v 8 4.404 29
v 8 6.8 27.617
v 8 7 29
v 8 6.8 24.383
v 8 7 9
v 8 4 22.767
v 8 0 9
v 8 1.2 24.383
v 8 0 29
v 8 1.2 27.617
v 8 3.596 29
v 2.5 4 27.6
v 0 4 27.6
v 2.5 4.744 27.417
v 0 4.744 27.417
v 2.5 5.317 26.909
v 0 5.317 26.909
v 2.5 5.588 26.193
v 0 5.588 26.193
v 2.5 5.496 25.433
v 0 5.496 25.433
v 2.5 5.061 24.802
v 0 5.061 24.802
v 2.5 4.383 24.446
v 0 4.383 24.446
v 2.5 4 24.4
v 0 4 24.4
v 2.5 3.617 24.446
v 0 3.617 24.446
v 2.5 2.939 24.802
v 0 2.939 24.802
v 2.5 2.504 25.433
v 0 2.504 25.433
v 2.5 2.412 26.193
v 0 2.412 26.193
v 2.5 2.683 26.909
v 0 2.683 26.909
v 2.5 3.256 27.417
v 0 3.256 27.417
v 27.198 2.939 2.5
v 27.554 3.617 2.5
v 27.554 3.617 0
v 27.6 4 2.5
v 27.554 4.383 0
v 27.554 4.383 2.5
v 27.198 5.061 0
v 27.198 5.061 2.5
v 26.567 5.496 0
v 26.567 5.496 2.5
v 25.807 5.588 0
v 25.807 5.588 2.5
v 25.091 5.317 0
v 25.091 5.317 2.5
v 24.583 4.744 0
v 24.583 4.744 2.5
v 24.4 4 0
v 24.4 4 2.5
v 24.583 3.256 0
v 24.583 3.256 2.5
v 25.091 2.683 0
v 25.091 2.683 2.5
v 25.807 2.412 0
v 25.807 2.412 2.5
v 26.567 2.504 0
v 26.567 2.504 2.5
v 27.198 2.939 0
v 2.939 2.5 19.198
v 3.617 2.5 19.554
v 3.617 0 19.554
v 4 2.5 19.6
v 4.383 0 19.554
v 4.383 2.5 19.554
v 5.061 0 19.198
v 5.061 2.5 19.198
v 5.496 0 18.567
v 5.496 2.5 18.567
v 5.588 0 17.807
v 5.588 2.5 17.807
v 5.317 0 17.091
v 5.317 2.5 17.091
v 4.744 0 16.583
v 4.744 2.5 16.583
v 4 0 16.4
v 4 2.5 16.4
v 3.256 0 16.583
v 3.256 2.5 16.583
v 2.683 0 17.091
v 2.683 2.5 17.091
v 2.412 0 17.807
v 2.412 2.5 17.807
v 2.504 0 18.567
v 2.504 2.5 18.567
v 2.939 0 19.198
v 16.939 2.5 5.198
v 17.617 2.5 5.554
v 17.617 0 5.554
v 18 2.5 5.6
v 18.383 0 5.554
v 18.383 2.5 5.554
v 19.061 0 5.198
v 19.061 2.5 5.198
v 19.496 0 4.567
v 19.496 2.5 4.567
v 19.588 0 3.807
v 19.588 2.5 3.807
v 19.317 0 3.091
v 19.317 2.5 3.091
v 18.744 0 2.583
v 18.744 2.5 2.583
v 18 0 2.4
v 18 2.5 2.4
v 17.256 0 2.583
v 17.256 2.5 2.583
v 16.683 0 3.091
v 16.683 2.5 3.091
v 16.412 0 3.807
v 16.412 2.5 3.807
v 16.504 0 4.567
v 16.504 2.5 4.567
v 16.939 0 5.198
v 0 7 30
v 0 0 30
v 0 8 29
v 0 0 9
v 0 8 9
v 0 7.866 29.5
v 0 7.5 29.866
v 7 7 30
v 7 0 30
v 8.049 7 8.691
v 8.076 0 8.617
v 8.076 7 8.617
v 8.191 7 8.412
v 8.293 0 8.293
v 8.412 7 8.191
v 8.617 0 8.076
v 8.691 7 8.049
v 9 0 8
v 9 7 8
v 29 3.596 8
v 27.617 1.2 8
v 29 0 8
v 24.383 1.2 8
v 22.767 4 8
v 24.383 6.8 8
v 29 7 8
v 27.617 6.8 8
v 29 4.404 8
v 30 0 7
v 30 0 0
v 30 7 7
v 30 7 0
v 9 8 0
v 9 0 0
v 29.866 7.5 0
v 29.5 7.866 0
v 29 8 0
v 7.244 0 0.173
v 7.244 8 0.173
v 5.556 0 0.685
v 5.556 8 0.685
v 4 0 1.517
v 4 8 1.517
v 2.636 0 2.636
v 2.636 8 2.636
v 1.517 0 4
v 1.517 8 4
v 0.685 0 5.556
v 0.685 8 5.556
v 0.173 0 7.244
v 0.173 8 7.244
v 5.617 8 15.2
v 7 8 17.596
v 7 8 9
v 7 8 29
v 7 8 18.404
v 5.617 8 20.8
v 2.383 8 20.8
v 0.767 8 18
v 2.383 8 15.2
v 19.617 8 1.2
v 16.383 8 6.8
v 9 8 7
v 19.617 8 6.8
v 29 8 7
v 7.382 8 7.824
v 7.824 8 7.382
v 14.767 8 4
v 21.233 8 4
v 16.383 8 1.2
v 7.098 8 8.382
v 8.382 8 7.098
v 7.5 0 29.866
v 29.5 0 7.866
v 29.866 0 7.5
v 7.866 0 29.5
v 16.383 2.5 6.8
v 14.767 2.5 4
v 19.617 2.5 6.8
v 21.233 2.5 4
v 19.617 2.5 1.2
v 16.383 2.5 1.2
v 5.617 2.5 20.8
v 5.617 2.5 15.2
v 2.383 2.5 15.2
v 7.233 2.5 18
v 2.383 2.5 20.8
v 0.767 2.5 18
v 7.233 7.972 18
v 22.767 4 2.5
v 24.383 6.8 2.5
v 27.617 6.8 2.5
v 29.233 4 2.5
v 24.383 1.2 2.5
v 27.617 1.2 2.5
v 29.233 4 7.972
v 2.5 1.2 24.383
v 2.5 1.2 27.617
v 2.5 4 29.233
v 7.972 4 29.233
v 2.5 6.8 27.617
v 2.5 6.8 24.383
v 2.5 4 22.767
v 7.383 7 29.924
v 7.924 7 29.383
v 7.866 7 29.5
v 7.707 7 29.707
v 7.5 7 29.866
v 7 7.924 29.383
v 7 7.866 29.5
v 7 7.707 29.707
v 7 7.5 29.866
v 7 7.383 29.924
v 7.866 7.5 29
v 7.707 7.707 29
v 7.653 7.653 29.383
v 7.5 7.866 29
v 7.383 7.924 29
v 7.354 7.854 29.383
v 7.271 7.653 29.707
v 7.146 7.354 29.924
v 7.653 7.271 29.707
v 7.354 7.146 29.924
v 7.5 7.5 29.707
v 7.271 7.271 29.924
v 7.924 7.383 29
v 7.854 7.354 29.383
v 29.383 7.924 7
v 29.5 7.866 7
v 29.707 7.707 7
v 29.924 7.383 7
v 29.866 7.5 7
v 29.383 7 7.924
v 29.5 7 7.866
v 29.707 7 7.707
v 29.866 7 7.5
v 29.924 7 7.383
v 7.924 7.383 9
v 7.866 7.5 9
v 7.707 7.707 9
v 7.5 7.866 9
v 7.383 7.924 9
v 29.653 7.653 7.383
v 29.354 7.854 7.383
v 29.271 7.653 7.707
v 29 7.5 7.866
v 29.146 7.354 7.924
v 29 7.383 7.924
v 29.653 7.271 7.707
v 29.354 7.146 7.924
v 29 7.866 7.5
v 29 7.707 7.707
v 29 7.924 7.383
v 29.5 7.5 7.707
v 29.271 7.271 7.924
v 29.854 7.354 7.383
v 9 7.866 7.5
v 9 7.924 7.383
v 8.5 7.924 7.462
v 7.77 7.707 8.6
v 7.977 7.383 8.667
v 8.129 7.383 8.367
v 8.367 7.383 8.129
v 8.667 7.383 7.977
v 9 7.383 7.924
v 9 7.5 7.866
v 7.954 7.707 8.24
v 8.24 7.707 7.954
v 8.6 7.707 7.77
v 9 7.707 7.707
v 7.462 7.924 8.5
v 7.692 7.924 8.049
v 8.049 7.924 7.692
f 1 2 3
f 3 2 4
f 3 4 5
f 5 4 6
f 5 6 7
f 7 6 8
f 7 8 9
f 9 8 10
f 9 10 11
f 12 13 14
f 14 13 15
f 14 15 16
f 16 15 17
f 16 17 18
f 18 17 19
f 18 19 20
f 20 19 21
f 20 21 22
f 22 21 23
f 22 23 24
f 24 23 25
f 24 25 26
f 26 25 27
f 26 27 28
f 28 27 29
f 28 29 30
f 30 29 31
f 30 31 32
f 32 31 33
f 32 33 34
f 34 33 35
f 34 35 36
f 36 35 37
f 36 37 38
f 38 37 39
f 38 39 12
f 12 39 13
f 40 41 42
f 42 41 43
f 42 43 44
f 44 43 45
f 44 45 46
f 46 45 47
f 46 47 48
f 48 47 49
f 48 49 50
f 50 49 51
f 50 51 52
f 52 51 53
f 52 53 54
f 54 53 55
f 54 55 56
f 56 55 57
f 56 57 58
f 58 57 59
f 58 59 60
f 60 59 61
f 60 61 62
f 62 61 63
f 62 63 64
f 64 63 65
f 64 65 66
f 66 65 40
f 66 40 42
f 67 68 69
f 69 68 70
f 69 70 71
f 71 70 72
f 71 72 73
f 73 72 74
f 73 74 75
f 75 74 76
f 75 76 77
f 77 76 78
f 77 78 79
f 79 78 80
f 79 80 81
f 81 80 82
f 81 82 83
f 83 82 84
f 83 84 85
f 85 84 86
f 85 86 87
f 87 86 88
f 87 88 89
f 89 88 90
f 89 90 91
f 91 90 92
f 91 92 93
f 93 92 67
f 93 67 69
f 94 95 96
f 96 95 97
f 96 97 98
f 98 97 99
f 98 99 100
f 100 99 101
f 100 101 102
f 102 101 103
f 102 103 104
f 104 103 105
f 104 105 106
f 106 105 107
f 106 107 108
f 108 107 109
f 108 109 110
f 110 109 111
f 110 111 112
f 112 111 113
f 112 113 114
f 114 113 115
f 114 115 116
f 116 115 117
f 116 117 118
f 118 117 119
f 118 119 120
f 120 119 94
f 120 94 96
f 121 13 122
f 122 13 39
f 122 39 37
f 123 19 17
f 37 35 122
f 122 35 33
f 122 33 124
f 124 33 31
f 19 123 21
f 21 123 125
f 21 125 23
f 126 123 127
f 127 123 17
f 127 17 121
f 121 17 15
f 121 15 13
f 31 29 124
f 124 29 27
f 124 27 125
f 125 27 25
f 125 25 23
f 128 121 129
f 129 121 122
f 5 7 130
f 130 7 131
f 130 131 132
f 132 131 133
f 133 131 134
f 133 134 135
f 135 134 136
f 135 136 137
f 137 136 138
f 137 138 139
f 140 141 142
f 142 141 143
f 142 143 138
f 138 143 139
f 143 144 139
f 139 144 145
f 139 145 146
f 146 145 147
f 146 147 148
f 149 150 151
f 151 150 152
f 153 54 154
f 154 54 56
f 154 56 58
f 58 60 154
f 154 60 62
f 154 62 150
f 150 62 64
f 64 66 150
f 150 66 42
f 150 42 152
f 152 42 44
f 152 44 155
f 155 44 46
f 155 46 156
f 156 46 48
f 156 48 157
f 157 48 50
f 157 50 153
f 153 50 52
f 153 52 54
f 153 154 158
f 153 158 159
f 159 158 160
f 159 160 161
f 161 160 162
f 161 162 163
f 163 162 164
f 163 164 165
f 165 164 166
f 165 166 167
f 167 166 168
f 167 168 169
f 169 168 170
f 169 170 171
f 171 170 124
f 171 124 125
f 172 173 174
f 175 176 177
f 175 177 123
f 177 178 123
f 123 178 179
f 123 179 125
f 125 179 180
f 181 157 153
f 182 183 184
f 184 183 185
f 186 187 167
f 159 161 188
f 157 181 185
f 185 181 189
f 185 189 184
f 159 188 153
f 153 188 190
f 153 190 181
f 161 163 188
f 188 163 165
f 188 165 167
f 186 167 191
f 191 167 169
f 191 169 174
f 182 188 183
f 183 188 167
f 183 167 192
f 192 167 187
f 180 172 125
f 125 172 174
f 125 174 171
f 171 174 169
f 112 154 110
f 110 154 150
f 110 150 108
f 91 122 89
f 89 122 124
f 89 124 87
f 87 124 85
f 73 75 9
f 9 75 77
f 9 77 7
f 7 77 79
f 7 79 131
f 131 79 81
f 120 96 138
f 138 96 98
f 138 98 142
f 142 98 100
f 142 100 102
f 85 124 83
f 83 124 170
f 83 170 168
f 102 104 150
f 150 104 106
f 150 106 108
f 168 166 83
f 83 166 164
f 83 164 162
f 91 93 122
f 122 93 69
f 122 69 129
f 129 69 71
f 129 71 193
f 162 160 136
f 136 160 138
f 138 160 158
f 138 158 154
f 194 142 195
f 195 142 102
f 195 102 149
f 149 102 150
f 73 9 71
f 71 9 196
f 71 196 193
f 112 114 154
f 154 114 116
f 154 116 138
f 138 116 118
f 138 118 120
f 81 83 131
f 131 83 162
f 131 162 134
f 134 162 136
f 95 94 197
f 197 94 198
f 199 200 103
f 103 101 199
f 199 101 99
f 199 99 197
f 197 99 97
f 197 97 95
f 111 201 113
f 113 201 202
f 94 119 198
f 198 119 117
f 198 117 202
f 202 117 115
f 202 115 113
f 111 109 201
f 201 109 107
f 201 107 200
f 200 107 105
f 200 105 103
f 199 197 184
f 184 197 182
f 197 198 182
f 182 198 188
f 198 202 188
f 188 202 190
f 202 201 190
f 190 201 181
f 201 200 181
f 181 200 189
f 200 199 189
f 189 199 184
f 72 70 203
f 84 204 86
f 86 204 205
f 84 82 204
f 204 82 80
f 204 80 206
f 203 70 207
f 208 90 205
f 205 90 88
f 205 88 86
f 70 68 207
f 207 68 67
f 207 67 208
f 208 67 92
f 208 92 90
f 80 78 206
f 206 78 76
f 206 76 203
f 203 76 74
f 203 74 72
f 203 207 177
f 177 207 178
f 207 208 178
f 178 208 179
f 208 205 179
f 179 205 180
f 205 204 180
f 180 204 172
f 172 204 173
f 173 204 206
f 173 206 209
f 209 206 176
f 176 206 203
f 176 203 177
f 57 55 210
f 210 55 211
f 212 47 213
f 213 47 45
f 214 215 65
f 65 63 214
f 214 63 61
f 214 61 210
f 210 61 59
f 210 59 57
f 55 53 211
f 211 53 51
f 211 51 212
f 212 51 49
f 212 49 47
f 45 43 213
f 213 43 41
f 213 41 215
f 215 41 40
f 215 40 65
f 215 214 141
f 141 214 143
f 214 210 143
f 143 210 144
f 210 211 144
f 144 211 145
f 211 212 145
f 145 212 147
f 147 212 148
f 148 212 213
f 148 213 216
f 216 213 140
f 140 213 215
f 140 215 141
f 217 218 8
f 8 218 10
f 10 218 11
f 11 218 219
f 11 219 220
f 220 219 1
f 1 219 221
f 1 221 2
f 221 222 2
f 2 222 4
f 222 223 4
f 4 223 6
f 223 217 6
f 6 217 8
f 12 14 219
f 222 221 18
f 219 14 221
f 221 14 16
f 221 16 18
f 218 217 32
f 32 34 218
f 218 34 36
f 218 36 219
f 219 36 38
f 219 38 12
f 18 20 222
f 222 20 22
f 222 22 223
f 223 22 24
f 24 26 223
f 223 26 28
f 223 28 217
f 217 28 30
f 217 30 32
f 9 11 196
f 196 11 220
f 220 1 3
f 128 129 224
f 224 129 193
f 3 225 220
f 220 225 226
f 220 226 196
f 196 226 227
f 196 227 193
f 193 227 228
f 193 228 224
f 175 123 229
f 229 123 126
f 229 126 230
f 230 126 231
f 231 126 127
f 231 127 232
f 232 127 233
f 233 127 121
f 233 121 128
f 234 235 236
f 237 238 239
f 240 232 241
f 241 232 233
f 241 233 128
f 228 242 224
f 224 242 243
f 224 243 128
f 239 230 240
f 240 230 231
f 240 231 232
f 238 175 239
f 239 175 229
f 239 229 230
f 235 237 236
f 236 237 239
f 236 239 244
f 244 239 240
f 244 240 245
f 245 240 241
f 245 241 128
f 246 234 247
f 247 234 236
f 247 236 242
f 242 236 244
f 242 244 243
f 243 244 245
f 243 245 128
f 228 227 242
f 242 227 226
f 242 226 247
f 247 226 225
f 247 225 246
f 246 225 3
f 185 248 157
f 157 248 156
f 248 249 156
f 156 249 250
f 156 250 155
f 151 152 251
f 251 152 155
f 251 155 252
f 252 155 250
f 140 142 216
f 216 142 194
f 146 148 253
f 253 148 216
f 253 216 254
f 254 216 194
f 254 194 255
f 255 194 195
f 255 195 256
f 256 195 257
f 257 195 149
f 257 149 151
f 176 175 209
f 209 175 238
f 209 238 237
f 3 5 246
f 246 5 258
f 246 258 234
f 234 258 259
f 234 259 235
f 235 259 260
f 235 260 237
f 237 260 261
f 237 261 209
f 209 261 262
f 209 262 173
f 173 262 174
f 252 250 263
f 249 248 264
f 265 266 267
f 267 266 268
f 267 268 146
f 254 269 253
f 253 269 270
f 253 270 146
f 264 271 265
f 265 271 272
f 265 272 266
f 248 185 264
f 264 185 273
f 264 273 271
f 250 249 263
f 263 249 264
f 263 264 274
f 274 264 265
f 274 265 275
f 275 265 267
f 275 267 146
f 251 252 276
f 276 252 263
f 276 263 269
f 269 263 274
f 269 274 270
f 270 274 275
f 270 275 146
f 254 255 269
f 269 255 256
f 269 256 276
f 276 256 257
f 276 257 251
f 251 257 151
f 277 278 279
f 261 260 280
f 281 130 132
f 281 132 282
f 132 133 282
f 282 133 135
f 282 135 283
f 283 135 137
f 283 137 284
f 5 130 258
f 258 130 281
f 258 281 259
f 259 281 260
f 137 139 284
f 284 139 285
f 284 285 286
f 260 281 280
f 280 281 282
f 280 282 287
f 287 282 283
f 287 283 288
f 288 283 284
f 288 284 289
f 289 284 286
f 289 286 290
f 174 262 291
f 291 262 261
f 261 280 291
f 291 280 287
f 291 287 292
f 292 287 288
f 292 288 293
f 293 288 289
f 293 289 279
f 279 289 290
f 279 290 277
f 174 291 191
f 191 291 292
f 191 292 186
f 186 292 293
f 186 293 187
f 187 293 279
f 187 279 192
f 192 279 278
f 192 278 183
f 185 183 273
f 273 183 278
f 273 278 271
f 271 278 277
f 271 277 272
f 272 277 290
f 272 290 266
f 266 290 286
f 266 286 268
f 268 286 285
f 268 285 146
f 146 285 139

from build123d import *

# Parameters (mm, degrees)
EXTRU_MINCE1_DEPTH      = 8
ENL_V_MAT_EXTRU_1_REACH = 45.174
ESQUISSE2_R             = 1.6
ENL_V_MAT_EXTRU_2_DEPTH = 5.5
ENL_V_MAT_EXTRU_3_REACH = 45.174
ESQUISSE4_R             = 1.6
ENL_V_MAT_EXTRU_4_DEPTH = 5.5
CONG_1_R                = 1


with BuildPart() as part:
    # Esquisse1 → Extru.-Mince1 (new body)
    with BuildSketch(Plane(origin=(0, 0, 0), x_dir=(1, 0, 0), z_dir=(0, 1, 0))):
        with BuildLine():
            Line((30, 0), (9, 0))
            ThreePointArc((9, 0), (2.636038969, -2.636038969), (0, -9))
            Line((0, -9), (0, -30))
            Line((0, -30), (8, -30))
            Line((8, -30), (8, -9))
            ThreePointArc((8, -9), (8.292893219, -8.292893219), (9, -8))
            Line((9, -8), (30, -8))
            Line((30, -8), (30, 0))
        make_face()
    extrude(amount=EXTRU_MINCE1_DEPTH)

    # Esquisse2 → Enlèv. mat.-Extru.1 (cut, up to next)
    with BuildSketch(Plane.XZ, mode=Mode.PRIVATE) as enl_v_mat_extru_1_sk1:
        with Locations(Location((18, 4, 0), (0, 0, 270))):
            Circle(ESQUISSE2_R)
    enl_v_mat_extru_1_tool1 = extrude(enl_v_mat_extru_1_sk1.sketch, amount=-ENL_V_MAT_EXTRU_1_REACH, mode=Mode.PRIVATE) & part.part
    # Esquisse2 → Enlèv. mat.-Extru.1 (cut, up to next)
    with BuildSketch(Plane.XZ, mode=Mode.PRIVATE) as enl_v_mat_extru_1_sk2:
        with Locations(Location((4, 18, 0), (0, 0, 270))):
            Circle(ESQUISSE2_R)
    enl_v_mat_extru_1_tool2 = extrude(enl_v_mat_extru_1_sk2.sketch, amount=-ENL_V_MAT_EXTRU_1_REACH, mode=Mode.PRIVATE) & part.part
    add(enl_v_mat_extru_1_tool1.solids().sort_by_distance((18, 0, 4))[0], mode=Mode.SUBTRACT)
    add(enl_v_mat_extru_1_tool2.solids().sort_by_distance((4, 0, 18))[0], mode=Mode.SUBTRACT)

    # Esquisse3 → Enlèv. mat.-Extru.2 (cut)
    with BuildSketch(Plane(origin=(0, 8, 0), x_dir=(1, 0, 0), z_dir=(0, 1, 0))):
        Polygon((5.616580754, -20.8), (7.233161507, -18), (5.616580754, -15.2), (2.383419246, -15.2), (0.766838493, -18), (2.383419246, -20.8), align=None)
        Polygon((19.616580754, -6.8), (21.233161507, -4), (19.616580754, -1.2), (16.383419246, -1.2), (14.766838493, -4), (16.383419246, -6.8), align=None)
    extrude(amount=-ENL_V_MAT_EXTRU_2_DEPTH, mode=Mode.SUBTRACT)

    # Esquisse4 → Enlèv. mat.-Extru.3 (cut, up to next)
    with BuildSketch(Plane(origin=(0, 0, 0), x_dir=(-1, 0, 0), z_dir=(0, 0, -1)), mode=Mode.PRIVATE) as enl_v_mat_extru_3_sk1:
        with Locations((-26, 4)):
            Circle(ESQUISSE4_R)
    enl_v_mat_extru_3_tool1 = extrude(enl_v_mat_extru_3_sk1.sketch, amount=-ENL_V_MAT_EXTRU_3_REACH, mode=Mode.PRIVATE) & part.part
    enl_v_mat_extru_3 = enl_v_mat_extru_3_tool1.solids().sort_by_distance((26, 4, 0))[0]
    add(enl_v_mat_extru_3, mode=Mode.SUBTRACT)

    # Esquisse5 → Enlèv. mat.-Extru.4 (cut)
    with BuildSketch(Plane.XY.offset(8)):
        Polygon((27.616580754, 1.2), (29.233161507, 4), (27.616580754, 6.8), (24.383419246, 6.8), (22.766838493, 4), (24.383419246, 1.2), align=None)
    enl_v_mat_extru_4 = extrude(amount=-ENL_V_MAT_EXTRU_4_DEPTH, mode=Mode.SUBTRACT)

    # Symétrie1: Enlèv. mat.-Extru.3, Enlèv. mat.-Extru.4 across plane
    add(enl_v_mat_extru_3.mirror(Plane(origin=(0, 0, 0), x_dir=(0.7071067811865476, 0, 0.7071067811865475), z_dir=(0.7071067811865475, 0, -0.7071067811865476))), mode=Mode.SUBTRACT)
    add(enl_v_mat_extru_4.mirror(Plane(origin=(0, 0, 0), x_dir=(0.7071067811865476, 0, 0.7071067811865475), z_dir=(0.7071067811865475, 0, -0.7071067811865476))), mode=Mode.SUBTRACT)

    # Congé1
    # the kernel refuses this fillet: 1 mm, written as the material it takes off along each edge
    with BuildSketch(Plane(origin=(7, 7, 29), x_dir=(0, 1, 0), z_dir=(1, 0, 0))) as cong_1_piece_1_section:
        Polygon((0, 0), (CONG_1_R, 0), (CONG_1_R, CONG_1_R), (0, CONG_1_R), align=None)
    cong_1_piece_1 = extrude(amount=CONG_1_R, mode=Mode.PRIVATE)
    cong_1_piece_1 = cong_1_piece_1 - Plane(origin=(7, 7, 29), x_dir=(0, -0.7071067811865475, -0.7071067811865475), z_dir=(1, 0, 0)) * Sphere(CONG_1_R, mode=Mode.PRIVATE)
    add(cong_1_piece_1, mode=Mode.SUBTRACT)
    with BuildSketch(Plane(origin=(29, 7, 7), x_dir=(0, 1, 0), z_dir=(0, 0, 1))) as cong_1_piece_2_section:
        Polygon((0, 0), (CONG_1_R, 0), (CONG_1_R, -CONG_1_R), (0, -CONG_1_R), align=None)
    cong_1_piece_2 = extrude(amount=CONG_1_R, mode=Mode.PRIVATE)
    cong_1_piece_2 = cong_1_piece_2 - Plane(origin=(29, 7, 7), x_dir=(-0.7071067811865475, -0.7071067811865475, 0), z_dir=(0, 0, 1)) * Sphere(CONG_1_R, mode=Mode.PRIVATE)
    add(cong_1_piece_2, mode=Mode.SUBTRACT)
    with BuildSketch(Plane(origin=(8, 8, 29), x_dir=(-1, 0, 0), z_dir=(0, 0, -1))) as cong_1_piece_3:
        with BuildLine():
            CenterArc((CONG_1_R, -CONG_1_R), CONG_1_R, 90, 90)
            Line((0, -CONG_1_R), (0, 0))
            Line((0, 0), (CONG_1_R, 0))
        make_face()
    extrude(amount=20, mode=Mode.SUBTRACT)
    with BuildSketch(Plane(origin=(30, -2.5, 8), x_dir=(-1, 0, 0), z_dir=(0, 1, 0)), Plane(origin=(30, 8, 7), x_dir=(-1, 0, 0), z_dir=(0, 0, -1)), Plane(origin=(-2.5, 8, 30), x_dir=(0, 0, -1), z_dir=(1, 0, 0))) as cong_1_piece_4:
        with BuildLine():
            CenterArc((CONG_1_R, -CONG_1_R), CONG_1_R, 90, 90)
            Line((0, -CONG_1_R), (0, 0))
            Line((0, 0), (CONG_1_R, 0))
        make_face()
    extrude(amount=9.5, mode=Mode.SUBTRACT)
    with BuildSketch(Plane(origin=(8, -2.5, 30), x_dir=(0, 0, -1), z_dir=(0, 1, 0))) as cong_1_piece_5:
        with BuildLine():
            CenterArc((CONG_1_R, CONG_1_R), CONG_1_R, 180, 90)
            Line((0, CONG_1_R), (0, 0))
            Line((0, 0), (CONG_1_R, 0))
        make_face()
    extrude(amount=9.5, mode=Mode.SUBTRACT)
    with BuildSketch(Plane(origin=(9, 8, 9), x_dir=(-1, 0, 0), z_dir=(0, 0, 1))) as cong_1_piece_6:
        with BuildLine():
            CenterArc((1 + CONG_1_R, CONG_1_R), CONG_1_R, 180, 90)
            Line((1 + CONG_1_R, 0), (1, 0))
            Line((1, 0), (1, CONG_1_R))
        make_face()
    revolve(axis=Axis((9, 8, 9), (0, -1, 0)), revolution_arc=90, mode=Mode.SUBTRACT)
    with BuildSketch(Plane(origin=(9, 8, 8), x_dir=(0, -1, 0), z_dir=(1, 0, 0))) as cong_1_piece_7:
        with BuildLine():
            CenterArc((CONG_1_R, CONG_1_R), CONG_1_R, 180, 90)
            Line((0, CONG_1_R), (0, 0))
            Line((0, 0), (CONG_1_R, 0))
        make_face()
    extrude(amount=20, mode=Mode.SUBTRACT)


solid = part.part
